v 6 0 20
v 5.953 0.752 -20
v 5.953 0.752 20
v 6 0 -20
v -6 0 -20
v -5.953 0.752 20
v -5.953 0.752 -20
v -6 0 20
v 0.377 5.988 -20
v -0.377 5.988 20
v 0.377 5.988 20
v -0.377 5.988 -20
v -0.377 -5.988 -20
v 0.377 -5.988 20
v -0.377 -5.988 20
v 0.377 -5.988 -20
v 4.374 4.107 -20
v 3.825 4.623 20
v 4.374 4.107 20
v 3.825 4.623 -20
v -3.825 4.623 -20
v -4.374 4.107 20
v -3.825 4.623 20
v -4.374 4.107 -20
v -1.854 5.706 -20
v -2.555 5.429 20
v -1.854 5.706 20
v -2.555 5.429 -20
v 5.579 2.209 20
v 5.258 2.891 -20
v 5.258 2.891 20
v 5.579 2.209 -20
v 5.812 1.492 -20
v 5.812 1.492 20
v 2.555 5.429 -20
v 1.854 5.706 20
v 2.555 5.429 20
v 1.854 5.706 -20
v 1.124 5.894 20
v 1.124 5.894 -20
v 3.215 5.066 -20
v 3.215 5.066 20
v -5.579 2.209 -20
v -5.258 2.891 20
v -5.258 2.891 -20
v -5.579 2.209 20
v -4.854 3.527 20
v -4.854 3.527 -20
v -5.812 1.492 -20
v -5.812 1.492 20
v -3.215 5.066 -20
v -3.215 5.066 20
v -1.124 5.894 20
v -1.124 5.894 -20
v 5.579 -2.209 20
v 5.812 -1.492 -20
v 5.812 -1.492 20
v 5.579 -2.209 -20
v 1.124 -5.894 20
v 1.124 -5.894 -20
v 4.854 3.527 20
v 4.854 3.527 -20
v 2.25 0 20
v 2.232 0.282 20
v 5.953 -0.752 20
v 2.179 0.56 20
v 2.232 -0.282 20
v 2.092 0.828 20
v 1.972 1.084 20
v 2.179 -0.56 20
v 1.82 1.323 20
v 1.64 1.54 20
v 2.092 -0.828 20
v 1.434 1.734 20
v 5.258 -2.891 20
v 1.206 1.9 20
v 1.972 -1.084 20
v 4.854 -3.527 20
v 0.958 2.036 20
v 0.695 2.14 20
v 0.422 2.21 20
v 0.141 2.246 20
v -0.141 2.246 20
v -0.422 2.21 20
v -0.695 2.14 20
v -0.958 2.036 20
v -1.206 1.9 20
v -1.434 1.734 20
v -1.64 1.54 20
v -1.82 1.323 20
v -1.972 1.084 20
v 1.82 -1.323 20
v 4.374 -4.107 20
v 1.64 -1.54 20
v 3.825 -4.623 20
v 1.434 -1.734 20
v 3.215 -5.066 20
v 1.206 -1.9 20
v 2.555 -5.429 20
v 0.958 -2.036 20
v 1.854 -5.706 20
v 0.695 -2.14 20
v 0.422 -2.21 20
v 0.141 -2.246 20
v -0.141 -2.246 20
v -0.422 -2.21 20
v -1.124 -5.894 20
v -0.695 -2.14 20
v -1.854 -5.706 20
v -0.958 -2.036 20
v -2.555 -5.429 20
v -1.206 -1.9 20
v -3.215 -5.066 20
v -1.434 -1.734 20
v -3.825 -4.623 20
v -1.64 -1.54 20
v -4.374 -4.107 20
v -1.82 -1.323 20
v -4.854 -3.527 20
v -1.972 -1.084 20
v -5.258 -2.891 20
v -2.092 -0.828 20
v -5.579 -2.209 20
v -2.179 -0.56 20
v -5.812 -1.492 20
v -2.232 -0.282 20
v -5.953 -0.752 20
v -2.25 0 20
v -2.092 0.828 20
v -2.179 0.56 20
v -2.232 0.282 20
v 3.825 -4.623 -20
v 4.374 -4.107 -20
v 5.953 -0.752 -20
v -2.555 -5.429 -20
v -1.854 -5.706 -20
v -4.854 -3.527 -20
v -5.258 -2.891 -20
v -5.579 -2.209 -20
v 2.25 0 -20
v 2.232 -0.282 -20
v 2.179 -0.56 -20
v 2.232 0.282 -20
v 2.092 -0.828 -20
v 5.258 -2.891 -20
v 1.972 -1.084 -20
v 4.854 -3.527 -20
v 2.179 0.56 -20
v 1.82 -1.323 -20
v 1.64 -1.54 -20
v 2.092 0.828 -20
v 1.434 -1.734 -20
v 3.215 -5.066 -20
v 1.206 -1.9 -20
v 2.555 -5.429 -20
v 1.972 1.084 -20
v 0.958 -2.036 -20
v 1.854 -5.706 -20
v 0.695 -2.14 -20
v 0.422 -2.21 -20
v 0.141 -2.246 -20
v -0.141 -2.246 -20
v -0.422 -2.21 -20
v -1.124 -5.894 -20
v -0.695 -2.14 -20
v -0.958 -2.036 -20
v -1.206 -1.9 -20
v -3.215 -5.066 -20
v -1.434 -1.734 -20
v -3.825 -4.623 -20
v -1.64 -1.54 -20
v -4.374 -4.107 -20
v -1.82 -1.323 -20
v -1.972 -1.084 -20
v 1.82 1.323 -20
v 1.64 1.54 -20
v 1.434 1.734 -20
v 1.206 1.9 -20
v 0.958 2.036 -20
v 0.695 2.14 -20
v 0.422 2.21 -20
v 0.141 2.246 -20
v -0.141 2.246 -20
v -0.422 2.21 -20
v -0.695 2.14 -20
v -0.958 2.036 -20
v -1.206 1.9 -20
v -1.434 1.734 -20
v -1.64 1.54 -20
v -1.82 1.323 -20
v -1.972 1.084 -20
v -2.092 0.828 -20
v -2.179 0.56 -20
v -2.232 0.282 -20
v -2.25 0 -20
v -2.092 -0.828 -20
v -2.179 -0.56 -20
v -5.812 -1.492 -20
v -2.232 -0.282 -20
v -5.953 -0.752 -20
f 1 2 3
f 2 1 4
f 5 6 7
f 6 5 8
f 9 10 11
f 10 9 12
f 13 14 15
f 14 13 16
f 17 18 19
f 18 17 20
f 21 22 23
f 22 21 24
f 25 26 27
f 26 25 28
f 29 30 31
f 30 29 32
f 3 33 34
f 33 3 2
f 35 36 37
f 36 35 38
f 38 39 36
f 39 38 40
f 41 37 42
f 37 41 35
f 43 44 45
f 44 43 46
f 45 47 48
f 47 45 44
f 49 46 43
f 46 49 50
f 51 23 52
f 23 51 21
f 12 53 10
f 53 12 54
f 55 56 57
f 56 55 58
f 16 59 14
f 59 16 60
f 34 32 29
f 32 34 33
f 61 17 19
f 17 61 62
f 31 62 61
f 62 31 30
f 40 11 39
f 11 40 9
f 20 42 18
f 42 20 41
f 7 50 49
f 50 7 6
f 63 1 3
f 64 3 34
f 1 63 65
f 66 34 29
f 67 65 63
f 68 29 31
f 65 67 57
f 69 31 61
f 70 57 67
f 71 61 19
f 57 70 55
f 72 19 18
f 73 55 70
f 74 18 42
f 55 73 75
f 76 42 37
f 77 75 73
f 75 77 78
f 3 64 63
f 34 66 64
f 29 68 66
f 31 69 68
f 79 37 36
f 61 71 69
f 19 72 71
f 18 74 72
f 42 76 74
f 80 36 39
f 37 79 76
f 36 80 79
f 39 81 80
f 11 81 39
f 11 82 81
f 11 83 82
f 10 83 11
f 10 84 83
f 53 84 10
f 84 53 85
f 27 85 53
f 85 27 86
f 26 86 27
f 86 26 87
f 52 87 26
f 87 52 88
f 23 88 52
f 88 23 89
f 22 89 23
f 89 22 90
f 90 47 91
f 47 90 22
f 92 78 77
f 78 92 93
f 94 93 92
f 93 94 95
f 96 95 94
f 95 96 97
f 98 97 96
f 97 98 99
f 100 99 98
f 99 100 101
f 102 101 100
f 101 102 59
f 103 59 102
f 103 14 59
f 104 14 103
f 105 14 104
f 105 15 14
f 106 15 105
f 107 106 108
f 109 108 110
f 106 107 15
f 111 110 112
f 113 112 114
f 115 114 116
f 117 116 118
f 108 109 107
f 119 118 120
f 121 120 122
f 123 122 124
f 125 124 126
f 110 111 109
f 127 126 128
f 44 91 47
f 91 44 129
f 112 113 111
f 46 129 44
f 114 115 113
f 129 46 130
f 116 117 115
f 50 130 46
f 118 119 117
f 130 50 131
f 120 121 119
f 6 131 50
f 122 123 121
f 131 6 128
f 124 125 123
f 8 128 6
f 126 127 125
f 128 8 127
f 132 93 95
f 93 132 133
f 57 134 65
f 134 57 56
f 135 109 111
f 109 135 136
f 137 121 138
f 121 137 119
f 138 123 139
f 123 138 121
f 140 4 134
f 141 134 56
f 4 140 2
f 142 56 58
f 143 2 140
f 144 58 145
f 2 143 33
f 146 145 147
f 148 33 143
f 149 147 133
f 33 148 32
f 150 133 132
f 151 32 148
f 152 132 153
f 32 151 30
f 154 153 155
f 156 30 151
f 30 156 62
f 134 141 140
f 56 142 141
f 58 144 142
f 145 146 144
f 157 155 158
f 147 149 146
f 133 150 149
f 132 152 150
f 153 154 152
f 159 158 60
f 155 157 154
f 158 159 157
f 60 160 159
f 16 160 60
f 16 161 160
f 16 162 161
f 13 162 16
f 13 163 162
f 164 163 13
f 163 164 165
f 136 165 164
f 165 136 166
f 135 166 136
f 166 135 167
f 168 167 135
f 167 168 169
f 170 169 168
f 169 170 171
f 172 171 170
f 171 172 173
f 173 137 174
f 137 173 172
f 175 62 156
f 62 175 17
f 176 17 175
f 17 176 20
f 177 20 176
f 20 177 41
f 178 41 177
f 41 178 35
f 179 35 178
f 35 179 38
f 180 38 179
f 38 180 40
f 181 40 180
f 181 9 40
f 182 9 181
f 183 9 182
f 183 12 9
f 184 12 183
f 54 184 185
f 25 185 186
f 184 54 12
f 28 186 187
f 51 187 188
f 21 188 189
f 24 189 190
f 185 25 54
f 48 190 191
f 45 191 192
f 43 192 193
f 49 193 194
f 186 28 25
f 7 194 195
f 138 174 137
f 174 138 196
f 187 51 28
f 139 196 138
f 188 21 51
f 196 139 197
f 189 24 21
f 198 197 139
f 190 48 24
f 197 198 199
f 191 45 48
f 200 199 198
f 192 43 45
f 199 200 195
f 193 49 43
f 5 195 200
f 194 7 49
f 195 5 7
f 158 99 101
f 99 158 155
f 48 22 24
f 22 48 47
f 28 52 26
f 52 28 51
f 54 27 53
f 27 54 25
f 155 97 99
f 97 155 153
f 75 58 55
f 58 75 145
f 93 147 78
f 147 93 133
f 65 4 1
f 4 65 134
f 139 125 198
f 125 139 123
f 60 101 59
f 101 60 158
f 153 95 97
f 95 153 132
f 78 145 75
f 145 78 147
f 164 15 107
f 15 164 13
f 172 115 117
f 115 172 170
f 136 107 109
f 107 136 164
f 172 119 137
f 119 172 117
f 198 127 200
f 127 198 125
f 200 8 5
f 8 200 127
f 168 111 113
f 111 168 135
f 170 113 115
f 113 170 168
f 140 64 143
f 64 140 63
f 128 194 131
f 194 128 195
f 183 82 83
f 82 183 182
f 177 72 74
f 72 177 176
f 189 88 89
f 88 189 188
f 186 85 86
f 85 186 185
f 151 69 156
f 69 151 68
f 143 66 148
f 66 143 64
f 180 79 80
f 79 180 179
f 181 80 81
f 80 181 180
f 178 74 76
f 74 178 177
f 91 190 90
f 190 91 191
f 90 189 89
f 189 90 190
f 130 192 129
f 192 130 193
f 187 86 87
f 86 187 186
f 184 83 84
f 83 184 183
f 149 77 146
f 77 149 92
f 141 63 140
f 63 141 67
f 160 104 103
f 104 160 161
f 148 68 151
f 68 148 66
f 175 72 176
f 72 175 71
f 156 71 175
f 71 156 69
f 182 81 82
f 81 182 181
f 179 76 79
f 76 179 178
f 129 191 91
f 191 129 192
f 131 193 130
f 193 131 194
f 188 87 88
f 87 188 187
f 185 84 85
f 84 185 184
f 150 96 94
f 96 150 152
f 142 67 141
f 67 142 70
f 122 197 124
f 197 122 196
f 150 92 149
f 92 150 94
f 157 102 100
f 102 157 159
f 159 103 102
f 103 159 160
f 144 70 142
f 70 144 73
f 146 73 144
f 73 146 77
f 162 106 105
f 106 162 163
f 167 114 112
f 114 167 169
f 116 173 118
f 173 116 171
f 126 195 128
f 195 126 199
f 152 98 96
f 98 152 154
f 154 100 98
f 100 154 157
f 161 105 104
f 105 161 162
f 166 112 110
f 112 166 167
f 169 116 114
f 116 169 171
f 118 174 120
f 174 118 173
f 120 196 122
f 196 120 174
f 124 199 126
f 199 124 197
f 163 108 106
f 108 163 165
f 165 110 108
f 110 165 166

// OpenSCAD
$fn = 50;


difference() {
	union() {
		translate(v = [0, 0, -20.0000000000]) {
			cylinder(h = 40, r = 6.0000000000);
		}
	}
	union() {
		translate(v = [0, 0, -100.0000000000]) {
			cylinder(h = 200, r = 2.2500000000);
		}
	}
}
